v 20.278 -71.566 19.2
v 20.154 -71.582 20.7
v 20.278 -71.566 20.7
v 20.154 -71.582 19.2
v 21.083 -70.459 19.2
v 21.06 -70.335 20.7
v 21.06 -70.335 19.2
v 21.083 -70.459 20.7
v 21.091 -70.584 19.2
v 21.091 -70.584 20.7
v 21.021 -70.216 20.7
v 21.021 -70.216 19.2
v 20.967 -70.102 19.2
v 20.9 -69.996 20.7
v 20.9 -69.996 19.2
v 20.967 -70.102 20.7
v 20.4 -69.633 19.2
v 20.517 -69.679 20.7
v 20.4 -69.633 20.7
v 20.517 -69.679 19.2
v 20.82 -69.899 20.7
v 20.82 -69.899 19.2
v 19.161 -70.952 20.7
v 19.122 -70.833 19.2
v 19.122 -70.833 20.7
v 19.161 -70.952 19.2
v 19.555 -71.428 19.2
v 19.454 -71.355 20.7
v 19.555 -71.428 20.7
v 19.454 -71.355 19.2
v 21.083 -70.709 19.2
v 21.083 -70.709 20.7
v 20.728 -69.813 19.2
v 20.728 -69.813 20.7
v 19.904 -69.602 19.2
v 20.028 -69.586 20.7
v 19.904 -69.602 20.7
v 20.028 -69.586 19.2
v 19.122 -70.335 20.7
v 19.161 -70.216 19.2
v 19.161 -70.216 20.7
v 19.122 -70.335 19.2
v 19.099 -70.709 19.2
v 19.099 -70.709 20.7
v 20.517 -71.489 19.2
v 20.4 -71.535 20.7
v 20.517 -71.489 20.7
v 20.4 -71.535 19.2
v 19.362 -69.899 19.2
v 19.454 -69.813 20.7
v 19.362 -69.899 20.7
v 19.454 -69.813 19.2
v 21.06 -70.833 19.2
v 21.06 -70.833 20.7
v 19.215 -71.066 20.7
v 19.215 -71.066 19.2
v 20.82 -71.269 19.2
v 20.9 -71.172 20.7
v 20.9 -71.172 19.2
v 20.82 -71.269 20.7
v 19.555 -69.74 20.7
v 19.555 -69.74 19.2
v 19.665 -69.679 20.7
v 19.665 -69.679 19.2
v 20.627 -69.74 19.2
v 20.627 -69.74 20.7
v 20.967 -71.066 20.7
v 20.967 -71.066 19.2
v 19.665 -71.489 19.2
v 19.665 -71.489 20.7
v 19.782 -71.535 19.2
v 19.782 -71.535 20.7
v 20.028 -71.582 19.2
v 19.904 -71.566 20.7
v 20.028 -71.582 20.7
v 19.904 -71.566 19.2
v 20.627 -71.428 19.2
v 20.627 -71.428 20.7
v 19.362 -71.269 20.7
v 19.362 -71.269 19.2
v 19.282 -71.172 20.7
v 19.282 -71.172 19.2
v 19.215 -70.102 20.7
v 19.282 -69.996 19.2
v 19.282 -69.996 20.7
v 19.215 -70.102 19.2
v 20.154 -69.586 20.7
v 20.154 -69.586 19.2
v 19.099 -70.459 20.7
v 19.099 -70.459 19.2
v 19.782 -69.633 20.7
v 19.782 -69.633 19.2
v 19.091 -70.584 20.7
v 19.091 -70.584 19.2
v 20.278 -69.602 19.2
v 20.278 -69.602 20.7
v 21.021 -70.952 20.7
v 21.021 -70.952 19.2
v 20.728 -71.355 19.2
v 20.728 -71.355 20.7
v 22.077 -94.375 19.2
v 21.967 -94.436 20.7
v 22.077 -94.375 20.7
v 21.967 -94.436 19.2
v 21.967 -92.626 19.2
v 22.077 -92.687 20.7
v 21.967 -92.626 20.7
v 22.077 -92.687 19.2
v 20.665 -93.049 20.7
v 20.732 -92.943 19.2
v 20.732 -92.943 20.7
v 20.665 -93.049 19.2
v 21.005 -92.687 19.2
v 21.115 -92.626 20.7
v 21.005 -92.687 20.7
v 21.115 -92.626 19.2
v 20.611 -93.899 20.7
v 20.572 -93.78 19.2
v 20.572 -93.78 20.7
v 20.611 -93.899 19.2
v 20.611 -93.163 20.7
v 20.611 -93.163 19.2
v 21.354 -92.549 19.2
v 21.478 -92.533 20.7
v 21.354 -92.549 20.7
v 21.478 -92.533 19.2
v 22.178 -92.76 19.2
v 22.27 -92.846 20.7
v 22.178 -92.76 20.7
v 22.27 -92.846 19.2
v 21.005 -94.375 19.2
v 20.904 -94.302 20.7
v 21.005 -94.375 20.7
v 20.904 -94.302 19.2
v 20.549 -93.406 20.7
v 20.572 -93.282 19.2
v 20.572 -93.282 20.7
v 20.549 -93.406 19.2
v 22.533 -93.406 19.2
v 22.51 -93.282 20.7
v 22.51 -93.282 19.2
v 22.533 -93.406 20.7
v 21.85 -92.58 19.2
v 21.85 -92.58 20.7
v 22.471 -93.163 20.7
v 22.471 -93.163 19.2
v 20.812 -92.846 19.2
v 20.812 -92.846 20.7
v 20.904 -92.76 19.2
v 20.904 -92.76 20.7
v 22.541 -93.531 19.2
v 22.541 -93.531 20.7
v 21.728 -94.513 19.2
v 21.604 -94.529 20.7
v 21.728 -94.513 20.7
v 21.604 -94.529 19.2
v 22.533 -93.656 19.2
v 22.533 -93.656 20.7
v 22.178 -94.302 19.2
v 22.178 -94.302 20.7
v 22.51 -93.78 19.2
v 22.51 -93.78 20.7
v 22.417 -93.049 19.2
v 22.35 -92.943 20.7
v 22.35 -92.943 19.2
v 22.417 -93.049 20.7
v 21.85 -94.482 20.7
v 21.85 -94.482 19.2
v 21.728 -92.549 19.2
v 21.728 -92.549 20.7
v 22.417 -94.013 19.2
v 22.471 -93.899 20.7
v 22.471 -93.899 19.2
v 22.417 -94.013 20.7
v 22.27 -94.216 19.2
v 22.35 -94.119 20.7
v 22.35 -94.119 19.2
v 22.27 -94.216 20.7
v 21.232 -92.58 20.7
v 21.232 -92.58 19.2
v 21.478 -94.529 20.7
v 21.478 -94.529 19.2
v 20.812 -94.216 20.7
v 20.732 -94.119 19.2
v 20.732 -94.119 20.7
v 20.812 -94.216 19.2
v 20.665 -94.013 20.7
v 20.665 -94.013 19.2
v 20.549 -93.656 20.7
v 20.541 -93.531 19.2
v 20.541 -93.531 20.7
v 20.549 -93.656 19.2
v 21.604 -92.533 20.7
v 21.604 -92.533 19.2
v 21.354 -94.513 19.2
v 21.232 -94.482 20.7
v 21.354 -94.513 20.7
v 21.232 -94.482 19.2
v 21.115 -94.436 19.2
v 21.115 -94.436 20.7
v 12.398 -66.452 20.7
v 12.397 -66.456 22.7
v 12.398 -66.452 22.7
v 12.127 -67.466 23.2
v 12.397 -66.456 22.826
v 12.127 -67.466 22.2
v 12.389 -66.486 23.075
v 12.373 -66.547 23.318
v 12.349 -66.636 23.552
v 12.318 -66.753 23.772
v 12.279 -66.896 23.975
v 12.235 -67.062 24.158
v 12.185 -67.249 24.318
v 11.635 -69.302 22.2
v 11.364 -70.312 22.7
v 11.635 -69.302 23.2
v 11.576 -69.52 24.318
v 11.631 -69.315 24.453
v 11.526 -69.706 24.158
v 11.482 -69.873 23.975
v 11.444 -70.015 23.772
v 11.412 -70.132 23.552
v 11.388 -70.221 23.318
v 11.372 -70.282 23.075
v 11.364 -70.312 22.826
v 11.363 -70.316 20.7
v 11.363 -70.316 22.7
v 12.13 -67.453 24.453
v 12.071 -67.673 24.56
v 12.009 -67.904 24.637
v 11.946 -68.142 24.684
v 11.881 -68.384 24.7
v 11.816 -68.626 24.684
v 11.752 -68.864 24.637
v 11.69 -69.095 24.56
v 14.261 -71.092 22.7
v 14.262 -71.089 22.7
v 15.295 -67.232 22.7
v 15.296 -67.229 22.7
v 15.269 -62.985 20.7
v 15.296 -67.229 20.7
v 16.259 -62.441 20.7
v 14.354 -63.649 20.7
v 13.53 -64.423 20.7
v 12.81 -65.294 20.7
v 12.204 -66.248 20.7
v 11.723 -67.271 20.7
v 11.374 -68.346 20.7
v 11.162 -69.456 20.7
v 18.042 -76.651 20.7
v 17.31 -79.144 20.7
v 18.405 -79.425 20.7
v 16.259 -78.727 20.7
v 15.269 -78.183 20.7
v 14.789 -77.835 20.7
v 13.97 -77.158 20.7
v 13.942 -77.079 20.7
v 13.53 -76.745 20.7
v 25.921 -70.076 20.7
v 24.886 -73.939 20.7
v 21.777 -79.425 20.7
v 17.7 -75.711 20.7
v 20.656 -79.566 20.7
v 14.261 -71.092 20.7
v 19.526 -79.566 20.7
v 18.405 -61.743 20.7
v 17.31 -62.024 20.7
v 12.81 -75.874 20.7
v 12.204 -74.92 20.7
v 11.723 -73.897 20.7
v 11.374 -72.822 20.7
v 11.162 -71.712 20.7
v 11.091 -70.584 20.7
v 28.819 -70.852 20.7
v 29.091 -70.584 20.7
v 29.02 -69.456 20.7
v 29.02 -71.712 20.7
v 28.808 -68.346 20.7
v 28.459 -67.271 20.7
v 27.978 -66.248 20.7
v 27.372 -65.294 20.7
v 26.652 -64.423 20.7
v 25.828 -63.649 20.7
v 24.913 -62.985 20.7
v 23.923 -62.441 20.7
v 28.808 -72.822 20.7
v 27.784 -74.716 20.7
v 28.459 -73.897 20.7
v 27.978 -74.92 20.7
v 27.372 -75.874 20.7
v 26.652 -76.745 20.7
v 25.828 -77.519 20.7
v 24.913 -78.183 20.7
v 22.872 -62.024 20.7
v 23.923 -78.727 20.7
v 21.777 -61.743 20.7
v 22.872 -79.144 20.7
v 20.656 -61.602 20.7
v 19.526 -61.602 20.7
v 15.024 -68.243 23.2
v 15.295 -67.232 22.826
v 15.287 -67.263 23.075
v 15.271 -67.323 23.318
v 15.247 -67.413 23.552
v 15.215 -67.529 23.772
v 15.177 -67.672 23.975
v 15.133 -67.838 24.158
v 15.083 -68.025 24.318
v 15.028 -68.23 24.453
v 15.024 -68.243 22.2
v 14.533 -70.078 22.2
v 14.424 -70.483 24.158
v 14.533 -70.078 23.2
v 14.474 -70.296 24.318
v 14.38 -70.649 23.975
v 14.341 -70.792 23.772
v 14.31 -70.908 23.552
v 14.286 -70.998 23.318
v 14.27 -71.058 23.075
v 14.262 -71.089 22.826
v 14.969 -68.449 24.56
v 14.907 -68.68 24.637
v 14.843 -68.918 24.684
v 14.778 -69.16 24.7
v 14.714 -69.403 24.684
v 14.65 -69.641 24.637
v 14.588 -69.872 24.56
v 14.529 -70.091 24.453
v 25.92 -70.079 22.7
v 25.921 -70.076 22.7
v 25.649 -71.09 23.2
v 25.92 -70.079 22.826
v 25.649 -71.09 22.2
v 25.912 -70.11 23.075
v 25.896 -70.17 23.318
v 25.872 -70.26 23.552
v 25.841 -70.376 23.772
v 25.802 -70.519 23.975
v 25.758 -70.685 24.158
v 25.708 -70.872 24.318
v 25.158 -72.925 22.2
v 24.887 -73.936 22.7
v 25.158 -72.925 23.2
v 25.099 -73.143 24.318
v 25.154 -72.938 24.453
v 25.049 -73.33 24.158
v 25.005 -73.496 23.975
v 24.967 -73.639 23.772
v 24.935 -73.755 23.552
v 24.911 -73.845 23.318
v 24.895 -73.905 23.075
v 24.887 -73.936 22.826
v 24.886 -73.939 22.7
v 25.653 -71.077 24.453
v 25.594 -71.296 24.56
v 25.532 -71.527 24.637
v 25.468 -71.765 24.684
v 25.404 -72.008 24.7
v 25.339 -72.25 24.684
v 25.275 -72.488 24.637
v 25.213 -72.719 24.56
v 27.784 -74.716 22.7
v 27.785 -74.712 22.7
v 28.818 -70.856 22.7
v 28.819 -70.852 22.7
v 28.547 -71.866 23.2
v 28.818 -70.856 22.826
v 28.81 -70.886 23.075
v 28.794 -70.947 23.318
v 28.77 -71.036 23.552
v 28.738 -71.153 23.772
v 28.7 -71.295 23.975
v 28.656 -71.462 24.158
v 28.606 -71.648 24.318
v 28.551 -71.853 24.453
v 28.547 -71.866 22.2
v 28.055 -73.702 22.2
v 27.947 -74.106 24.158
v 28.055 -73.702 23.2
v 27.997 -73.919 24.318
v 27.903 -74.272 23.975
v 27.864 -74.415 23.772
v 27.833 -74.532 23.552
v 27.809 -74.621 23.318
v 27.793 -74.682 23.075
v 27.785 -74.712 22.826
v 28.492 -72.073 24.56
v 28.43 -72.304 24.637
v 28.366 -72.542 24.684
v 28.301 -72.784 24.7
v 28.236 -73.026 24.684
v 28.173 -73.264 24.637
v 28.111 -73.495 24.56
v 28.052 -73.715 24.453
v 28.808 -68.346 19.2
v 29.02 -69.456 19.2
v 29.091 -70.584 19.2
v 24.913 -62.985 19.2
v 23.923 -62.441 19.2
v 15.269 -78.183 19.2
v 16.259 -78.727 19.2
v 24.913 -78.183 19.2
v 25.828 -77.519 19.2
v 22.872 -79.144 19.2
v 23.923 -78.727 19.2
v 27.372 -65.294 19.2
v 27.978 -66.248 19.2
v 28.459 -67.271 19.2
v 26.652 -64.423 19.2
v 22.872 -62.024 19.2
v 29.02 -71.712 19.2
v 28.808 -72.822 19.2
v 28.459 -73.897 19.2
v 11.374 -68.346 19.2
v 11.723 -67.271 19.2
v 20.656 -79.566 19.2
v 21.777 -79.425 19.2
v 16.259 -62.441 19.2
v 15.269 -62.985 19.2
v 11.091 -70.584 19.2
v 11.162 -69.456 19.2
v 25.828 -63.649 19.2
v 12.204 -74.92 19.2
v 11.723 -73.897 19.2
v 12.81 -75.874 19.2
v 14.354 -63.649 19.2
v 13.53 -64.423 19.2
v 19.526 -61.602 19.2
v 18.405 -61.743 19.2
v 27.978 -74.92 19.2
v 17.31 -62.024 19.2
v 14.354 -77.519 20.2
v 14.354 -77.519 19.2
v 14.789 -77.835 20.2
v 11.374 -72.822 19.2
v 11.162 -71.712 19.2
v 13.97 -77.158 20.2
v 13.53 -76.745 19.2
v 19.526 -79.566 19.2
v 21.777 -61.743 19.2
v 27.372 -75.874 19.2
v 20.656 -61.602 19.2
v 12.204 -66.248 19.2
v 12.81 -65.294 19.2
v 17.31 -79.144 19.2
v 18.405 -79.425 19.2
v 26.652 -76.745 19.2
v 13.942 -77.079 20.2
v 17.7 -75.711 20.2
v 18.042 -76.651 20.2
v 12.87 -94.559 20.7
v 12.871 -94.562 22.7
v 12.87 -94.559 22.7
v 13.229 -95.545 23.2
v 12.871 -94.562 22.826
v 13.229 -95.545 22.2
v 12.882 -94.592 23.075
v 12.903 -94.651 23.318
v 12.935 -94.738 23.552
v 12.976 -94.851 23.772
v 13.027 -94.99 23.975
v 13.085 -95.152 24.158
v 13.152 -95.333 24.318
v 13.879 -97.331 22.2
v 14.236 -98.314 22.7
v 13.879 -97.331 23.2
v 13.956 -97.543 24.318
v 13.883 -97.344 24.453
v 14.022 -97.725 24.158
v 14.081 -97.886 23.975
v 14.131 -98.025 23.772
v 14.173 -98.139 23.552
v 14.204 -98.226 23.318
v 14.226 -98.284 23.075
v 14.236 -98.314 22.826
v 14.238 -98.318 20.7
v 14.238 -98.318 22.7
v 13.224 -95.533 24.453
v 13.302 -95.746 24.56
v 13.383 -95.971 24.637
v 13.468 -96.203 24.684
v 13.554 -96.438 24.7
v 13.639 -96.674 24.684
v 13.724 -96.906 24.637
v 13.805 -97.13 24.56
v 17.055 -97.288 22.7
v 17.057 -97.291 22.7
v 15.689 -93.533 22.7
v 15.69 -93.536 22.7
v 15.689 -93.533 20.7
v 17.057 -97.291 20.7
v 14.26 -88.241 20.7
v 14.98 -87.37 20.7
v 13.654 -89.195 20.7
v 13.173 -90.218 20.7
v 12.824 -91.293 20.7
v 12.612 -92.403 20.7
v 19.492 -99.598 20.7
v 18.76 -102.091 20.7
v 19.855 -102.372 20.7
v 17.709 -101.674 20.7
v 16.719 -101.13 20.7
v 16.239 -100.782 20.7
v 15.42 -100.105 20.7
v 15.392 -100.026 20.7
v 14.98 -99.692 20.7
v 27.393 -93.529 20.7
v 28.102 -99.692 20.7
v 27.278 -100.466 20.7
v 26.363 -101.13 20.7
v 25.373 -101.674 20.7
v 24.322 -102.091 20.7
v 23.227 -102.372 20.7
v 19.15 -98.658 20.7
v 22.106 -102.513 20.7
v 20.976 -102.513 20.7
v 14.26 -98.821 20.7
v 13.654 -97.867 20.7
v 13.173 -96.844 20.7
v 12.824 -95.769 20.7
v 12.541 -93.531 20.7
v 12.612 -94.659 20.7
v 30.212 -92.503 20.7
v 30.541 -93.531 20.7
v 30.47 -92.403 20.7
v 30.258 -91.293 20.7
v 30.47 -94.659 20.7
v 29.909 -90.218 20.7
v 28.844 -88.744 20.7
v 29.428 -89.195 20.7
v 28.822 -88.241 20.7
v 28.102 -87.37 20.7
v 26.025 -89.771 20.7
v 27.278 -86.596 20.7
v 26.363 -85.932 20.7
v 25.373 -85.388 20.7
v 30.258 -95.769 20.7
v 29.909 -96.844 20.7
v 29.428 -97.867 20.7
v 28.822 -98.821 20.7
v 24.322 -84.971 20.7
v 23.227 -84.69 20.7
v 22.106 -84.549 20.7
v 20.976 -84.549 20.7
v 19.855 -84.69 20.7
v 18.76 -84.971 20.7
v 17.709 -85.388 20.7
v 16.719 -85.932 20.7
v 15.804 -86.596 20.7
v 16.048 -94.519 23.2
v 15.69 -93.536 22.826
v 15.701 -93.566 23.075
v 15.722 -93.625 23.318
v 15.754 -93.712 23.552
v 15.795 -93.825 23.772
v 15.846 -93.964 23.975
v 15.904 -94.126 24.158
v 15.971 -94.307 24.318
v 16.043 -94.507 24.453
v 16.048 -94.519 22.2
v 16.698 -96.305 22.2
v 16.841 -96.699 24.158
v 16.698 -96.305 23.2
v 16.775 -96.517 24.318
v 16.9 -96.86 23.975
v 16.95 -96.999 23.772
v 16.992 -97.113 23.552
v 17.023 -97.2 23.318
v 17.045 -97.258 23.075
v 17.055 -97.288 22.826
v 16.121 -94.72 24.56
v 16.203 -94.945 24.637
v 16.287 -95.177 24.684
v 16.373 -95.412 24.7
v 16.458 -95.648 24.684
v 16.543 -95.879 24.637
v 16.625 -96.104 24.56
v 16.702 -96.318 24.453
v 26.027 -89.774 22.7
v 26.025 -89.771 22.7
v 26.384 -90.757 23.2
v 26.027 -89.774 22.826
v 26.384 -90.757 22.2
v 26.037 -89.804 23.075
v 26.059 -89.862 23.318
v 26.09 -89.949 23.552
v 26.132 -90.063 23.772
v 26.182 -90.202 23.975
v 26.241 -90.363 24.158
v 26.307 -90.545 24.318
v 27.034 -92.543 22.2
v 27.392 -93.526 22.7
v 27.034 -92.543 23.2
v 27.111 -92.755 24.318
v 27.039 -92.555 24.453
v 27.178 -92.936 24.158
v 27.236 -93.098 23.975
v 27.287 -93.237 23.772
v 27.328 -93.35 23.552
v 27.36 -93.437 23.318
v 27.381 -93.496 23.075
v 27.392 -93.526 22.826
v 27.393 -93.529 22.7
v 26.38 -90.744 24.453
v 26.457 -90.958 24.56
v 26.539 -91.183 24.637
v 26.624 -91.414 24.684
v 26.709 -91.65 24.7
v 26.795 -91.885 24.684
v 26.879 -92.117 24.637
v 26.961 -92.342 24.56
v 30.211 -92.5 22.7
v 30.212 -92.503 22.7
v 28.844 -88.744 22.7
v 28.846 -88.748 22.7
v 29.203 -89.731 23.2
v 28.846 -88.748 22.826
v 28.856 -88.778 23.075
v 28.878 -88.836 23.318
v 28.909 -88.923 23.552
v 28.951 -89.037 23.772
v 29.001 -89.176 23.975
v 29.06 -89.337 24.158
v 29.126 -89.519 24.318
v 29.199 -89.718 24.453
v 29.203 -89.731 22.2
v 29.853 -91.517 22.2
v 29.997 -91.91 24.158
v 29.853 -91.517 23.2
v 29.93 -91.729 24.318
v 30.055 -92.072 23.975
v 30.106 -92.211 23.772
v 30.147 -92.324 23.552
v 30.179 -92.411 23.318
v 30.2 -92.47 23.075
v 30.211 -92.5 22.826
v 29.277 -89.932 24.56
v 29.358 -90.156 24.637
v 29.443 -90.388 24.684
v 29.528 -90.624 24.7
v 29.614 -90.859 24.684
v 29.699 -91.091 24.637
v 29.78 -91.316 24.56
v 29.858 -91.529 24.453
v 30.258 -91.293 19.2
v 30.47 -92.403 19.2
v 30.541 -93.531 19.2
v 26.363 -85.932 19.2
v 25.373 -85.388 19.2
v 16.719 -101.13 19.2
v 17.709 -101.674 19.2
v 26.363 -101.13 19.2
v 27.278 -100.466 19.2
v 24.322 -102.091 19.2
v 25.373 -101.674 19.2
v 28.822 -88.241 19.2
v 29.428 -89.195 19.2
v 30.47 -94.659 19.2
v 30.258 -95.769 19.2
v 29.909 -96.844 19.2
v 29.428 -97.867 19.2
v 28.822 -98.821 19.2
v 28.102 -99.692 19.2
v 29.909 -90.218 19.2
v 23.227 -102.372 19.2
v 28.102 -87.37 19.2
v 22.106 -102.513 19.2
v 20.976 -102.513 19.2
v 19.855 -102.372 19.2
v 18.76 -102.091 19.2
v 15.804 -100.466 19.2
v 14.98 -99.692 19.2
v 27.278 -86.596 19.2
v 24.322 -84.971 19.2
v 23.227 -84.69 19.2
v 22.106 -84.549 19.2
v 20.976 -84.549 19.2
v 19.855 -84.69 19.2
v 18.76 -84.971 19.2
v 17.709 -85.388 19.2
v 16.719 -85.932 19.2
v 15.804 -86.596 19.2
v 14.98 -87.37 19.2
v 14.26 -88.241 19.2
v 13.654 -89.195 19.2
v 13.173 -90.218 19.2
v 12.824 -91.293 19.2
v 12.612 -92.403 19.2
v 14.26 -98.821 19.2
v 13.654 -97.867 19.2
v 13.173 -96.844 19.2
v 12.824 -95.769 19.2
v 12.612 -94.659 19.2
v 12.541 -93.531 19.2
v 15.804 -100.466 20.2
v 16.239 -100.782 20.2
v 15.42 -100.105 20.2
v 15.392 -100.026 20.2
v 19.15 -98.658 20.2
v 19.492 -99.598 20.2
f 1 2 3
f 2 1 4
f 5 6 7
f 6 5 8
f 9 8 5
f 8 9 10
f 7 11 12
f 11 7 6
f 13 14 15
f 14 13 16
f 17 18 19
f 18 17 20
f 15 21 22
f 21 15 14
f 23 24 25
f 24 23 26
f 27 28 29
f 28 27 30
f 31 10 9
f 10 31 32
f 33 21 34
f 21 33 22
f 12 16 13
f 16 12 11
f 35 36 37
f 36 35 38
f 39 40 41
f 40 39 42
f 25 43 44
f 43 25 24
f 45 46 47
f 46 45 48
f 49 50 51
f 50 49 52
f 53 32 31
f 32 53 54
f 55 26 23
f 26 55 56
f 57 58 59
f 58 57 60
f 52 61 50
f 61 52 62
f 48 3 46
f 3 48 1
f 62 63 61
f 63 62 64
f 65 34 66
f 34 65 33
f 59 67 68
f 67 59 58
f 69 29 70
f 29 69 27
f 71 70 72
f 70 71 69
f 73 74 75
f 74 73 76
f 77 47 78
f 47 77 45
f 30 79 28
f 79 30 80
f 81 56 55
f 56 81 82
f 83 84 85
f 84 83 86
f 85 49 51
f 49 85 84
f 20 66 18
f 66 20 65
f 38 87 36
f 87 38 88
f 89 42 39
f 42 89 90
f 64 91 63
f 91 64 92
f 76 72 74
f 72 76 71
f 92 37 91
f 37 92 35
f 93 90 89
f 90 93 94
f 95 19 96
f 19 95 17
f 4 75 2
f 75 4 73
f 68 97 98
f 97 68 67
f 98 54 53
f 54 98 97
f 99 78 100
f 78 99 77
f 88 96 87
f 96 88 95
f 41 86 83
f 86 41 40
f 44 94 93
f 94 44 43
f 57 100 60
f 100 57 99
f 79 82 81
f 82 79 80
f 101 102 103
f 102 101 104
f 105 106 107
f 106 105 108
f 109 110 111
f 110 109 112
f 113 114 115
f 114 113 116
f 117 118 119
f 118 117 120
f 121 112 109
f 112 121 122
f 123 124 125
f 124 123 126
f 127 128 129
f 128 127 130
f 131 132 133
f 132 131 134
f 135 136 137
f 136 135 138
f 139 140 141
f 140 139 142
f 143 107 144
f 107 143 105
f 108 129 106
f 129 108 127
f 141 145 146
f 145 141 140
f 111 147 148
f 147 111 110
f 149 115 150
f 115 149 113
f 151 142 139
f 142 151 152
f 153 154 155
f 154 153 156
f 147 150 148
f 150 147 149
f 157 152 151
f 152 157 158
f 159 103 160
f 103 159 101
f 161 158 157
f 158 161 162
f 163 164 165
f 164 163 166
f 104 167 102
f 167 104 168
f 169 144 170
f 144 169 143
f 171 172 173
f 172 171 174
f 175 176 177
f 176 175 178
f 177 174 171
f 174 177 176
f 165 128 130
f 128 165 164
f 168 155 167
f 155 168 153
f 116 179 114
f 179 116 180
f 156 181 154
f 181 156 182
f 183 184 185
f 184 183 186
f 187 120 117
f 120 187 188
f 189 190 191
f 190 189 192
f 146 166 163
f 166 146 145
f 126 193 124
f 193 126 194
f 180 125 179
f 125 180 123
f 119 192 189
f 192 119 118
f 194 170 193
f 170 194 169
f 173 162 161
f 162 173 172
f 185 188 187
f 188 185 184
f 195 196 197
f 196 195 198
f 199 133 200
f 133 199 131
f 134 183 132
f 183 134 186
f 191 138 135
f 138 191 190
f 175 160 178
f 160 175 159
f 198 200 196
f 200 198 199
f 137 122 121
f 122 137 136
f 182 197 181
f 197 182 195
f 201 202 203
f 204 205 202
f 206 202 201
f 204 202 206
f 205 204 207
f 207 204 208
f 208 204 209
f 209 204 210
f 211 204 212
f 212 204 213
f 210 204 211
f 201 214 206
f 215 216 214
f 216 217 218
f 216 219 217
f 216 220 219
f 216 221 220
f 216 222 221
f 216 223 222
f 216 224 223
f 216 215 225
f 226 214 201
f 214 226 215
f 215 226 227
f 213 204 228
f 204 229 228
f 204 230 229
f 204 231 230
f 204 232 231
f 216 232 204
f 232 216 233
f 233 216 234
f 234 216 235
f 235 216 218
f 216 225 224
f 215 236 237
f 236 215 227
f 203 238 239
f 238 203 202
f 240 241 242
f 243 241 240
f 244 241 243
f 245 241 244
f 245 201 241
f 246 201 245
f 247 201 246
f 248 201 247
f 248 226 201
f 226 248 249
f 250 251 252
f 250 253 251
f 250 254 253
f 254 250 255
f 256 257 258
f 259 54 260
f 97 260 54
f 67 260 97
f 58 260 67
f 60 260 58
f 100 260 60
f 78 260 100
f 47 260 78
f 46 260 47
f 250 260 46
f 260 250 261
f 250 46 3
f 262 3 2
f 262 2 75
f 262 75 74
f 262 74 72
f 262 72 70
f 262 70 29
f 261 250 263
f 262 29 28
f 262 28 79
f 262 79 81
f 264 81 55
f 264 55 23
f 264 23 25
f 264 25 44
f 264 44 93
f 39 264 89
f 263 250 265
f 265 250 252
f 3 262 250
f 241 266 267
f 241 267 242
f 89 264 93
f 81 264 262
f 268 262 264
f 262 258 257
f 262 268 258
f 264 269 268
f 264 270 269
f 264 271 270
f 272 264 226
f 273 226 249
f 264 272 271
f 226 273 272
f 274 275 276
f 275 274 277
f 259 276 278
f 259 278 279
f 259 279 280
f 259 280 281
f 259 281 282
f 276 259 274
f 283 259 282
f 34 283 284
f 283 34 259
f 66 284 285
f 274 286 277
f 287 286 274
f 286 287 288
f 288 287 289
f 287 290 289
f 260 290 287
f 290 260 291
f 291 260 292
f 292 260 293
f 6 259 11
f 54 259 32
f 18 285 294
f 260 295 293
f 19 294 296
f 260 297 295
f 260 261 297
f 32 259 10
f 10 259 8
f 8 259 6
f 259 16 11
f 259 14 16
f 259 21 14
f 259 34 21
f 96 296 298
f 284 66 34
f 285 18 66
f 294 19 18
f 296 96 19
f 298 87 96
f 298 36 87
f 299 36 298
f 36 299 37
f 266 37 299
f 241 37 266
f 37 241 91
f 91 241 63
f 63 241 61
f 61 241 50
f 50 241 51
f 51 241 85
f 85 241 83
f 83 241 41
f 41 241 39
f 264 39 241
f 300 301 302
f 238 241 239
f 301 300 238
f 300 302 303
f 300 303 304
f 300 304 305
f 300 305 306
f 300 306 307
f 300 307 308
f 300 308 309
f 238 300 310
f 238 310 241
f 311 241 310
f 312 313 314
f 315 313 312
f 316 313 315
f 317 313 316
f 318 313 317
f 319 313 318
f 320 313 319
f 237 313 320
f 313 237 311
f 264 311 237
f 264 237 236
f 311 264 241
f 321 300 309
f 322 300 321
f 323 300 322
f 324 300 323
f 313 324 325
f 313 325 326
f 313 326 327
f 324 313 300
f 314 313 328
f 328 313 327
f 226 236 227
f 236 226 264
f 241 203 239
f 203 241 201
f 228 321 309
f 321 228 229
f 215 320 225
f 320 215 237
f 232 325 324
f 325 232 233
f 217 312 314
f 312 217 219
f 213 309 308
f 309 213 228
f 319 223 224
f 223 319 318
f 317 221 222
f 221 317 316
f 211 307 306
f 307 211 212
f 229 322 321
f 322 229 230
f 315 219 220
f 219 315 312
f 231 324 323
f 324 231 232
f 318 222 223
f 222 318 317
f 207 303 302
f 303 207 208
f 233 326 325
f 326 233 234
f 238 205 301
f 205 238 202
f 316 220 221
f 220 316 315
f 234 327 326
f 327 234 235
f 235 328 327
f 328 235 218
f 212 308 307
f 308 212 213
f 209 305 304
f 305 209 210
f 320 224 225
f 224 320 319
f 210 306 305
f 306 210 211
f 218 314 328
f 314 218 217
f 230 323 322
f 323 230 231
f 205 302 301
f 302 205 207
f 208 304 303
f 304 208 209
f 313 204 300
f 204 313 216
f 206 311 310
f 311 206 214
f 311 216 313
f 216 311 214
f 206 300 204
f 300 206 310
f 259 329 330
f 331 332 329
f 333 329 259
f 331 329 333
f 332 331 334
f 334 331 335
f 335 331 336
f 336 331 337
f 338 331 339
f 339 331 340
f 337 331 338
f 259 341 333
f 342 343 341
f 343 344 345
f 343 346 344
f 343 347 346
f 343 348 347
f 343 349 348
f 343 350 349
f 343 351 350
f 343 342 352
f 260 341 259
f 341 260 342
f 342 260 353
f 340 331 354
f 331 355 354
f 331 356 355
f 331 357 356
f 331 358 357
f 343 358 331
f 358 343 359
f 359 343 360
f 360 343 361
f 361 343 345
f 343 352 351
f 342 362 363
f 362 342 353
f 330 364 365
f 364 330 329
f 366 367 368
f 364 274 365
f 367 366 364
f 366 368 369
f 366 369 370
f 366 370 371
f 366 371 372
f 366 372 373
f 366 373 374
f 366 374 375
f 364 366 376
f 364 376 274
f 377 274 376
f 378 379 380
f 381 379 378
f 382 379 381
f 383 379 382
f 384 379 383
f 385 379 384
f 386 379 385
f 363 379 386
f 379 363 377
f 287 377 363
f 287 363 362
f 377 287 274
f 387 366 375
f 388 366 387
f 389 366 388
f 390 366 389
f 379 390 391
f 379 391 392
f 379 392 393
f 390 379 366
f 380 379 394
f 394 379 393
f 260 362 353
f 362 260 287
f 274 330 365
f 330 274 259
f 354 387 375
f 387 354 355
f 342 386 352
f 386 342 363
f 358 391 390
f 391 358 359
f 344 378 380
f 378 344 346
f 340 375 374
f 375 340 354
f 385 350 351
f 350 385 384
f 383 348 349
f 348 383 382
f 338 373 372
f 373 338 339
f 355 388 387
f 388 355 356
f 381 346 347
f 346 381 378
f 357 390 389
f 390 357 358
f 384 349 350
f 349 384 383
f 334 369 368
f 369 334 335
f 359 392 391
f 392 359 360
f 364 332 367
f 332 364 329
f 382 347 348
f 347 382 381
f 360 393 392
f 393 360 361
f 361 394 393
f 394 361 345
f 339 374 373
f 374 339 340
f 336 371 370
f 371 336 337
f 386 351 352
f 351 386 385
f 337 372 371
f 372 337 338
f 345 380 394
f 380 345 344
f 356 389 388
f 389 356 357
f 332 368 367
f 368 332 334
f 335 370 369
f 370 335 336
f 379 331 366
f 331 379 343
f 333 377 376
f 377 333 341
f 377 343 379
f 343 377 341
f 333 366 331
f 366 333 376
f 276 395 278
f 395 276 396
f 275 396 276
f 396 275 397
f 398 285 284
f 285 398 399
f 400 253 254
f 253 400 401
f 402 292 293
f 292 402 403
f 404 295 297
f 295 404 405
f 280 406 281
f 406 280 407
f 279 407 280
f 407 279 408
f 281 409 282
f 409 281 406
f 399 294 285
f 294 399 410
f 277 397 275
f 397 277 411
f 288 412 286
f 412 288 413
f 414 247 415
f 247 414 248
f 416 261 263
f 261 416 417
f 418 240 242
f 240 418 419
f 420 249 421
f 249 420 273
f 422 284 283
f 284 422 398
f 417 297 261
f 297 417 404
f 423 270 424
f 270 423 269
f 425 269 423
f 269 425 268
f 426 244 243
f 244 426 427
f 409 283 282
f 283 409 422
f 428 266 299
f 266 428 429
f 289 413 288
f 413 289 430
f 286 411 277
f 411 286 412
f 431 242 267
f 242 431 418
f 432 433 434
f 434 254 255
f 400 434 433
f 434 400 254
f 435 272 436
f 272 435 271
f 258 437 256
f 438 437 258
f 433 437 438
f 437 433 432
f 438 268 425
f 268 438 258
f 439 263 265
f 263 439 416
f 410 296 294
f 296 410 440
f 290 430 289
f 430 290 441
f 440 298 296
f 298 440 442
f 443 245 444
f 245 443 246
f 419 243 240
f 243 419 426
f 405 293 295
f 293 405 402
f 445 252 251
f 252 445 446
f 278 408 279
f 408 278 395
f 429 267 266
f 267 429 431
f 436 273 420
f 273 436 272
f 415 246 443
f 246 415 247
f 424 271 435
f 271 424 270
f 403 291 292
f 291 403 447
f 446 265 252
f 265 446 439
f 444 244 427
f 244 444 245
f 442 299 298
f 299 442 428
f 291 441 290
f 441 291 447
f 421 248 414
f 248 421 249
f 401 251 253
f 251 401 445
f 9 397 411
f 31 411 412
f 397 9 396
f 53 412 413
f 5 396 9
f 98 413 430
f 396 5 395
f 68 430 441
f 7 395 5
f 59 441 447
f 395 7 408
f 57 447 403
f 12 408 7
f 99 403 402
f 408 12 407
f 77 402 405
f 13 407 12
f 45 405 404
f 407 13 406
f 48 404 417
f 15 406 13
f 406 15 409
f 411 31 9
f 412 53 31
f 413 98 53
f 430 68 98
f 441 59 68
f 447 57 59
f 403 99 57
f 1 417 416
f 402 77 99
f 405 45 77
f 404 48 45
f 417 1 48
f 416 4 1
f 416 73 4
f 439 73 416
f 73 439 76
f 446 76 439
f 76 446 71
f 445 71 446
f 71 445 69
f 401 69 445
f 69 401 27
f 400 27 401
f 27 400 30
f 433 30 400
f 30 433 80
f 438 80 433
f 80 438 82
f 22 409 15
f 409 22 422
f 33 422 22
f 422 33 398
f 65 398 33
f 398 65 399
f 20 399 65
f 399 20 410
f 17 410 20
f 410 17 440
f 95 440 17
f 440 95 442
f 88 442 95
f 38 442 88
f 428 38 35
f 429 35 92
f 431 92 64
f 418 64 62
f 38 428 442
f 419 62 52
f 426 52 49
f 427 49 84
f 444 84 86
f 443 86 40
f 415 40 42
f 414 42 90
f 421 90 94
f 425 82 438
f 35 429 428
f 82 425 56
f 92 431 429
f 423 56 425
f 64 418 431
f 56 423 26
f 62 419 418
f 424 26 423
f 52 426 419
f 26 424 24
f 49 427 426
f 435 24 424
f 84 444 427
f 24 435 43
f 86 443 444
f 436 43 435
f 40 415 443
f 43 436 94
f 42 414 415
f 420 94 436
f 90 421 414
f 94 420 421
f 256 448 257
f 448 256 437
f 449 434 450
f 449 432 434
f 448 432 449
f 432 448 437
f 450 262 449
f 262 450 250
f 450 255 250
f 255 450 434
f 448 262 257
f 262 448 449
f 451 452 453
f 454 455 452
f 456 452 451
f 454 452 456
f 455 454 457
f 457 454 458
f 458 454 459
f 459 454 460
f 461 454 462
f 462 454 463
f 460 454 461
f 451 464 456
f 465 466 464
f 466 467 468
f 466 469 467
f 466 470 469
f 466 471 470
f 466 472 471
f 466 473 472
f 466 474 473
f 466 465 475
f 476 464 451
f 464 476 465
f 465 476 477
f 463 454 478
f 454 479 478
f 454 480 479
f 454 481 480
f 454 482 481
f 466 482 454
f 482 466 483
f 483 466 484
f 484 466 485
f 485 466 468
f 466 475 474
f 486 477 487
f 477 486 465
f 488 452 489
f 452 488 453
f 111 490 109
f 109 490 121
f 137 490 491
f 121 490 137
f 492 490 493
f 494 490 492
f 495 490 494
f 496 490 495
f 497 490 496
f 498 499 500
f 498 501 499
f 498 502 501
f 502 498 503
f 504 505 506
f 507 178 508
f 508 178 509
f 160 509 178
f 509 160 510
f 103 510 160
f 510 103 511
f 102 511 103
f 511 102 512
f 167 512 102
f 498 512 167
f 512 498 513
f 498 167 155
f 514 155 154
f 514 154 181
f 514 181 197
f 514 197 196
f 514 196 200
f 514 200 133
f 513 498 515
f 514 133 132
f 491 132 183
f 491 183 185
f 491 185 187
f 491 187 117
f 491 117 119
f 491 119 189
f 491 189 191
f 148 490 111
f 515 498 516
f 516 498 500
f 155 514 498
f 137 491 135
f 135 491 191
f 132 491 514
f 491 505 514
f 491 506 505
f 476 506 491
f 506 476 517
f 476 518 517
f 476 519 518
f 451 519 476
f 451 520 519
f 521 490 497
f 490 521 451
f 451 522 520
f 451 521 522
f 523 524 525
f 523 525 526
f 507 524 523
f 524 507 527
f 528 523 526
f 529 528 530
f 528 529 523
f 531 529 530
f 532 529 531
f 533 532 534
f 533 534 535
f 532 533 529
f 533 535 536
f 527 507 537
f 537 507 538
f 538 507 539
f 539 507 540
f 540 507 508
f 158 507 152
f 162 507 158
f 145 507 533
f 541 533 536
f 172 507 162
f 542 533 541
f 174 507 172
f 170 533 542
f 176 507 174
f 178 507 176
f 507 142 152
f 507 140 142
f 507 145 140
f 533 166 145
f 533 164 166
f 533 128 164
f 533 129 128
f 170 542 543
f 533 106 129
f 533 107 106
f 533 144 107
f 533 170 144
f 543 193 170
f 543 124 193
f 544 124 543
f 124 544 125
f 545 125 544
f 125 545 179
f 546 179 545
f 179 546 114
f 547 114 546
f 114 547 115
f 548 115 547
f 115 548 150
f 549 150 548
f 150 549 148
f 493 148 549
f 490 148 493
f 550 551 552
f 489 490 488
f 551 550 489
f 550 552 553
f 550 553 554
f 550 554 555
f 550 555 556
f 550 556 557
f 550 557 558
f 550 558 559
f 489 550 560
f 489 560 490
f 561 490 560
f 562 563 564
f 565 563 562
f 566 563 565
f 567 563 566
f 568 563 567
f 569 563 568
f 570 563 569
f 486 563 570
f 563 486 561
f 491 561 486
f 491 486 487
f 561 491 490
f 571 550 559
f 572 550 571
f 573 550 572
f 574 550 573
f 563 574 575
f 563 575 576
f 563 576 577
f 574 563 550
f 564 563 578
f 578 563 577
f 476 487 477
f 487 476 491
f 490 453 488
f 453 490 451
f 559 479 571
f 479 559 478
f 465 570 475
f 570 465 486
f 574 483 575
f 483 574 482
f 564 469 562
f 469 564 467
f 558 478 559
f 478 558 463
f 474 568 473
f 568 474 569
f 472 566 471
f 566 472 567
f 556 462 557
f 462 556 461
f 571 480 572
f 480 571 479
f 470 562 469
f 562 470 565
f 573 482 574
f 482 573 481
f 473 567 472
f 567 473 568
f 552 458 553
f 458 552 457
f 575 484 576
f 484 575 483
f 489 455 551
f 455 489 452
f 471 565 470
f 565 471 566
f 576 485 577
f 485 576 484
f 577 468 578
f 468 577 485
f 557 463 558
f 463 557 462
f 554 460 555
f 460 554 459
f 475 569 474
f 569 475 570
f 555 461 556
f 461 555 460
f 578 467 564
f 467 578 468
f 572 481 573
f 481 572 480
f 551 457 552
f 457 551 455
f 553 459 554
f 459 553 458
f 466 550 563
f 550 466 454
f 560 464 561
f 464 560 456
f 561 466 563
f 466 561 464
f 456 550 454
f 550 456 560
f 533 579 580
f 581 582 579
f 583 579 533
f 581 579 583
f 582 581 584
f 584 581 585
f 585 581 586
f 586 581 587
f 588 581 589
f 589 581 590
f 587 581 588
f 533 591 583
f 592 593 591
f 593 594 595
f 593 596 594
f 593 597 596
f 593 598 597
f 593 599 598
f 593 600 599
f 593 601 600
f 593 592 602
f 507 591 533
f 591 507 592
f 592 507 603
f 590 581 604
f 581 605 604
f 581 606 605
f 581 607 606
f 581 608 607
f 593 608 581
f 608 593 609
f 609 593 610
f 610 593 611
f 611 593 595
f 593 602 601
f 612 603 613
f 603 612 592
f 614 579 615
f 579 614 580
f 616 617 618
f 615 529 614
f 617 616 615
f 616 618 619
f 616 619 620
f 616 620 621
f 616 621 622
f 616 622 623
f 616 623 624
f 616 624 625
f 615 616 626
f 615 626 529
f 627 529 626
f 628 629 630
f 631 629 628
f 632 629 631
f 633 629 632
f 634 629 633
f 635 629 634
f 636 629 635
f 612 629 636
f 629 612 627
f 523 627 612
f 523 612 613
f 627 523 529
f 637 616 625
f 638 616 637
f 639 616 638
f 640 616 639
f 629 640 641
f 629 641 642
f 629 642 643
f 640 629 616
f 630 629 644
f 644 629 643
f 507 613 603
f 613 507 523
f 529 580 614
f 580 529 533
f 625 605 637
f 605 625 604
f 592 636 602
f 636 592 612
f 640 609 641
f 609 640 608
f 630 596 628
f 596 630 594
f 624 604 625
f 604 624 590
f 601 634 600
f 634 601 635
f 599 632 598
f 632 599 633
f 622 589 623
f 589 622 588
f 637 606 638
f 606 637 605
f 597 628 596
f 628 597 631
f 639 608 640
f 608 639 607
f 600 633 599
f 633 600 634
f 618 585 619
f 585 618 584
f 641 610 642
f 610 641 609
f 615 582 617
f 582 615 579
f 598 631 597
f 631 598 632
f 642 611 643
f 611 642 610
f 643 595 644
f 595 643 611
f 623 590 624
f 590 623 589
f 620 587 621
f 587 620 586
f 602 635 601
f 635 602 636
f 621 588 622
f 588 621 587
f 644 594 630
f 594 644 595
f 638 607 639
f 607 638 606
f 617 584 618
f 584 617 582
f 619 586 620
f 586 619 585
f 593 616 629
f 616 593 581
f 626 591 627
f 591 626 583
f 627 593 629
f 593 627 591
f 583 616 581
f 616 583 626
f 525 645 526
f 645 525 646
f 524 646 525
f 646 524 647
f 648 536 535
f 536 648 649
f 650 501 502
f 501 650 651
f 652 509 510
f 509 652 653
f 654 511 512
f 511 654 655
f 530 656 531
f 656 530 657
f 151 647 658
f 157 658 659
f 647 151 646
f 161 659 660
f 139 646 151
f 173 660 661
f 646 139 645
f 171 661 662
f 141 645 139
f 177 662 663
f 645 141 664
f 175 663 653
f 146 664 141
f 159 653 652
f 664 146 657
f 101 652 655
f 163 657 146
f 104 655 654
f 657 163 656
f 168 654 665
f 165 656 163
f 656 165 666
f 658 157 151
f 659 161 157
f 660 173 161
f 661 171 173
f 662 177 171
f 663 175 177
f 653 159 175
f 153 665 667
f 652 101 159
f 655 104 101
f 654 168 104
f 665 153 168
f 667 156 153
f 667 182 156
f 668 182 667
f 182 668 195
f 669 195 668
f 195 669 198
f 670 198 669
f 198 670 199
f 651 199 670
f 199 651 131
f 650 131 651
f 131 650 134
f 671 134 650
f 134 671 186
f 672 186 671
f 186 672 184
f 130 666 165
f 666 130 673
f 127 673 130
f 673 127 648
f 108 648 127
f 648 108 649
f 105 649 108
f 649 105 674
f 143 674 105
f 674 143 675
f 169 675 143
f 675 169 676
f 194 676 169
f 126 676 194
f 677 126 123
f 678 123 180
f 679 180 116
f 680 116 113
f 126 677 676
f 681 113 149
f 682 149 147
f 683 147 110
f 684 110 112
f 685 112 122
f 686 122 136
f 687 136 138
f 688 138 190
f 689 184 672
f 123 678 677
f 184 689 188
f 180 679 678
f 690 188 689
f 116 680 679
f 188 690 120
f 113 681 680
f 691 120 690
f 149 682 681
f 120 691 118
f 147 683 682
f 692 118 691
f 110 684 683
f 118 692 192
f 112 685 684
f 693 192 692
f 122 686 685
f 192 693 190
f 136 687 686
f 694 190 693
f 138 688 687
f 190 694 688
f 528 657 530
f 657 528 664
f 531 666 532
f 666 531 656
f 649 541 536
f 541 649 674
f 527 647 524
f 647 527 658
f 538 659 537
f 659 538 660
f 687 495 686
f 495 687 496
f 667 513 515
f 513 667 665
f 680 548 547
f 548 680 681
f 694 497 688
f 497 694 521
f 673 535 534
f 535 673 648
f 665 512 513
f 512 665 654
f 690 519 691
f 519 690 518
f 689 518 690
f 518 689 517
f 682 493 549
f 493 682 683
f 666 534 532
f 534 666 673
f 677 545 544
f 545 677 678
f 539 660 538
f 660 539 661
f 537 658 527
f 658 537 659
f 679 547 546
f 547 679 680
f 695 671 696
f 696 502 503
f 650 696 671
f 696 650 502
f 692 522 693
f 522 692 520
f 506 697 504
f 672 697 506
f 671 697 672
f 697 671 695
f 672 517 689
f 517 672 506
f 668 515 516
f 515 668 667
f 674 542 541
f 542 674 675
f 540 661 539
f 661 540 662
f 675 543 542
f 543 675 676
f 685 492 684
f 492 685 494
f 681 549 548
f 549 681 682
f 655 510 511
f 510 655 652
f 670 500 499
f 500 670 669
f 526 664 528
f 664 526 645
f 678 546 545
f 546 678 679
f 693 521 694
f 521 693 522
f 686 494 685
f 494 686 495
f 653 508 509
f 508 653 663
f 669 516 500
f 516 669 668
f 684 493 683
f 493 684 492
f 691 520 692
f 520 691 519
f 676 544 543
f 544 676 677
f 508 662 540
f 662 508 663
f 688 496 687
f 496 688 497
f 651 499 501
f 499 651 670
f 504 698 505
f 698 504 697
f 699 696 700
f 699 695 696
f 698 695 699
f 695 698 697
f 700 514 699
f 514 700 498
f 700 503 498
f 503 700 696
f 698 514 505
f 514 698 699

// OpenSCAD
// file: ../modules/camPinHoles.scad
include<../modules/params.scad>;
include<../modules/camplate_coords.scad>;
include<../modules/utils.scad>;

module camPinHoles(camPinDiam = 2.0) {
    translate(wpPin)
    pinHole(camPinDiam);   
    translate(flip(wpPin))
    mirror([1,0,0])
    pinHole(camPinDiam);
    translate(holdPin)
    pinHole(camPinDiam);   
    translate(flip(holdPin))
    mirror([1,0,0])
    pinHole(camPinDiam);
}

module pinHole(camPinDiam) {
        cylinder((camHeight + camPlateHeight + 1) * 2, d = camPinDiam, center = true);
}
// file: ../modules/utils.scad
function flip(coords) = [CAM_PLATE_WIDTH - coords[0], coords[1], coords[2]];
// file: ../modules/camplate_coords.scad
include<../modules/params.scad>;

camClearance = 2;

tCamCoords = [43.724 - xOffset, -90.844, camClearance];
tPivotCoords = [96.191 - xOffset, -90.75, camHeight + camPlateHeight/2 - 1];
nutCoords = [54.746 - xOffset, -72.624, camClearance];
tSlotCoords = [56.62 - xOffset, -70.401, camHeight - 1];
frontWallCoords = [46.178 - xOffset, -97, camClearance];
backWallCoords = [16.5 - xOffset, -63.999, camClearance];
bumperCoords = [94.5 - xOffset, -75.85, camClearance];

wpPin = [36.591 - xOffset, -70.584, 0]; 
holdPin = [38.041 - xOffset, -93.531, 0];

wpCamCoord = [25.392 - xOffset, -77.327, camClearance];
wpCamSpringCoord = [29.967 - xOffset, -72.587, camHeight - 3 + 0.05];
wpCamSpringRevCoord = [34.564 - xOffset, -72.581, camHeight - tolerance];

holdCamCoord = [19.867 - xOffset, -101.933, camClearance];
holdCamSpringCoord = [32.226 - xOffset, -98.494, camHeight - 3 + 0.05];
holdCamSpringRevCoord = [36.04 - xOffset, -95.531, camHeight - tolerance];

tPointerCoord = [43.724 - xOffset, -93.75, camHeight + camPlateHeight+ tolerance];
tensionMarksDist = -65;
tensionMarksStartAngle = 360-23.5;
tensionAngleInc = 1;
// file: ../modules/params.scad
/*

Values in `camelCase` are user-variable (within reason); 
values like numNeedles and screwDiam, etc.,  can be modified to
accommodate user preference or hardware subsitution. 

Values in `ALL_CAPS` should be considered CONSTANTS and should
only be modified with *extreme caution* as they will affect the 
relationship between the needles and the cams, which could
prevent stitches from forming correctly.

I recommend only modifying these constants if you are also 
making changes to the cam design in the technical sketch.
*/

$fn = 50;

STANDARD_GAUGE = 4.5;
MID_GAUGE = 6.5;

gauge = MID_GAUGE; // I recommend using one of the predefined gauges above
numNeedles = 25;
tolerance = 0.2; // allows a bit of room for parts that have to fit together; adjust according to your printer's precision

// ---
// Hardware dimensions 
// (actual measurements, no tolerances)

// - pan head 6-32 machine screws
screwDiam = 3.45;
screwHeight = 18;
screwHeadDiam = 6.75 + tolerance * 2; 
screwHeadHeight = 2.55 + tolerance * 2;
nutWidth = 7.9;
nutHeight = 2.8;

// - pan head 4-40 machine screws (M3 should also work where these are used)
screwDiamSm = 2.79;
screwHeightSm = 14.62;
screwHeadHeightSm = 2.41 + tolerance * 2;
screwHeadDiamSm = 5.21 + tolerance * 2;

// TODO: look for metric hardware alternatives while abroad 

// ---
// Needle dimensions
// - Brother needles
BUTT_HEIGHT = 15;
NEEDLE_WIDTH = 1.25;
NEEDLE_LEG_HEIGHT = 1.85;
HOOK_DIAM = 3.5;

// ---
// Needle Bed Zones
BACK_COVER = 45;
OOW_TRACK = 8;
B_TRACK = 42; // will divvy up working tracks (B & C position) later
C_TRACK = 0;
WORKING_TRACK = B_TRACK + C_TRACK;
HOLD_TRACK = 8;
SPONGE_BAR = 12;
COMB = 29;
NEEDLE_EXTENSION = 34.5;

// ---
// Needle bed dimensions
NEEDLE_BED_DEPTH = BACK_COVER + OOW_TRACK + WORKING_TRACK + HOLD_TRACK + SPONGE_BAR + COMB;
needleBedHeight = screwHeight + 2;
needleSlotHeight = NEEDLE_LEG_HEIGHT * 2 + screwHeadHeight;
needleSlotWidth = NEEDLE_WIDTH + 0.25; // add a small amount of clearance
combWidth = gauge*2/3; // width of cutouts for stitch formation; this gives room for the thickness of the yarn looped around the needle when it pulls back into the slot, but has to balance leaving enough material for the remaining "teeth" to not be too fragile
spongeThickness = 2.5;
spongeBarThickness = needleSlotHeight - NEEDLE_LEG_HEIGHT - spongeThickness;
YARN_DEPOSIT_Y = -155.1;
YARN_DEPOSIT_Z = -needleSlotHeight + HOOK_DIAM;
connectorOffset = 20;

screwPlacement = 3; // how many needles from edge of bed; min 2, max floor(numNeedles/2)

// ---
// Carriage dimensions
// refer to technical sketch
camHeight = BUTT_HEIGHT; // thickness of the tracks the needles ride along
camPlateHeight = 4; // plate behind the cams
CAM_PLATE_WIDTH = 91 * 2; 
CAM_PLATE_DEPTH = NEEDLE_BED_DEPTH - COMB + 6;

railDepth = 8;
railHeight = 8; // ???
xOffset = 16.5;
//vCamScrews = [[34-xOffset, -90.25, 0],[58-xOffset, -74.25, 0],[86-xOffset,-90.25, 0]];

echo(needleSlotHeight);
// main file
include<../modules/params.scad>;
include<../modules/camplate_coords.scad>;
include<../modules/utils.scad>;
include<../modules/camPinHoles.scad>;

//leverPlatePeg(); // debug at origin

module leverPlatePeg() {
    // hole is sized for a piece of bobby pin (flat side) measuring 1.5mm wide x 0.6mm thick
    
    bobbyWidth = 1.5;
    bobbyHeight = 0.6;
    difference() {
        union() {
            translate([0,0,1])
            cube([3,4,2], center = true);
            translate([-1.5,0,2])
            rotate([0,90,0])
            cylinder(3,2,2);
        }
        translate([0,0,2])
        cube([3.5, bobbyWidth + tolerance*2, bobbyHeight + tolerance*2], center = true);    
    }
}

module leverPlate(rot) {
//    color("orange")
    difference() {
        translate([0,0,camHeight + camPlateHeight + 1.5/2 + tolerance])    { 
            union() {
                cylinder(h = 1.5, d = 18, center = true); 
                rotate([0,0,rot]) {
                    translate([7,0,1.5/2])
                    color("lime")
                    leverPlatePeg();
                    translate([-7,0,1.5/2])
                    color("blue")
                    leverPlatePeg();
                } 
            } 
        }  // alignment "lock"
//        alignmentMark(tol = tolerance);
        rotate([0,0,200])
        translate([4,4,camHeight + camPlateHeight + 1 + tolerance])
        #cube([4,1,1]);
    }   
}

// print 2 each, mirrored

difference() {
    translate(wpPin)
    leverPlate(165);
    translate([0,0,2])
    camPinHoles();
}

difference() {
    translate(holdPin)
    leverPlate(200);
    translate([0,0,2])
    camPinHoles();
}
